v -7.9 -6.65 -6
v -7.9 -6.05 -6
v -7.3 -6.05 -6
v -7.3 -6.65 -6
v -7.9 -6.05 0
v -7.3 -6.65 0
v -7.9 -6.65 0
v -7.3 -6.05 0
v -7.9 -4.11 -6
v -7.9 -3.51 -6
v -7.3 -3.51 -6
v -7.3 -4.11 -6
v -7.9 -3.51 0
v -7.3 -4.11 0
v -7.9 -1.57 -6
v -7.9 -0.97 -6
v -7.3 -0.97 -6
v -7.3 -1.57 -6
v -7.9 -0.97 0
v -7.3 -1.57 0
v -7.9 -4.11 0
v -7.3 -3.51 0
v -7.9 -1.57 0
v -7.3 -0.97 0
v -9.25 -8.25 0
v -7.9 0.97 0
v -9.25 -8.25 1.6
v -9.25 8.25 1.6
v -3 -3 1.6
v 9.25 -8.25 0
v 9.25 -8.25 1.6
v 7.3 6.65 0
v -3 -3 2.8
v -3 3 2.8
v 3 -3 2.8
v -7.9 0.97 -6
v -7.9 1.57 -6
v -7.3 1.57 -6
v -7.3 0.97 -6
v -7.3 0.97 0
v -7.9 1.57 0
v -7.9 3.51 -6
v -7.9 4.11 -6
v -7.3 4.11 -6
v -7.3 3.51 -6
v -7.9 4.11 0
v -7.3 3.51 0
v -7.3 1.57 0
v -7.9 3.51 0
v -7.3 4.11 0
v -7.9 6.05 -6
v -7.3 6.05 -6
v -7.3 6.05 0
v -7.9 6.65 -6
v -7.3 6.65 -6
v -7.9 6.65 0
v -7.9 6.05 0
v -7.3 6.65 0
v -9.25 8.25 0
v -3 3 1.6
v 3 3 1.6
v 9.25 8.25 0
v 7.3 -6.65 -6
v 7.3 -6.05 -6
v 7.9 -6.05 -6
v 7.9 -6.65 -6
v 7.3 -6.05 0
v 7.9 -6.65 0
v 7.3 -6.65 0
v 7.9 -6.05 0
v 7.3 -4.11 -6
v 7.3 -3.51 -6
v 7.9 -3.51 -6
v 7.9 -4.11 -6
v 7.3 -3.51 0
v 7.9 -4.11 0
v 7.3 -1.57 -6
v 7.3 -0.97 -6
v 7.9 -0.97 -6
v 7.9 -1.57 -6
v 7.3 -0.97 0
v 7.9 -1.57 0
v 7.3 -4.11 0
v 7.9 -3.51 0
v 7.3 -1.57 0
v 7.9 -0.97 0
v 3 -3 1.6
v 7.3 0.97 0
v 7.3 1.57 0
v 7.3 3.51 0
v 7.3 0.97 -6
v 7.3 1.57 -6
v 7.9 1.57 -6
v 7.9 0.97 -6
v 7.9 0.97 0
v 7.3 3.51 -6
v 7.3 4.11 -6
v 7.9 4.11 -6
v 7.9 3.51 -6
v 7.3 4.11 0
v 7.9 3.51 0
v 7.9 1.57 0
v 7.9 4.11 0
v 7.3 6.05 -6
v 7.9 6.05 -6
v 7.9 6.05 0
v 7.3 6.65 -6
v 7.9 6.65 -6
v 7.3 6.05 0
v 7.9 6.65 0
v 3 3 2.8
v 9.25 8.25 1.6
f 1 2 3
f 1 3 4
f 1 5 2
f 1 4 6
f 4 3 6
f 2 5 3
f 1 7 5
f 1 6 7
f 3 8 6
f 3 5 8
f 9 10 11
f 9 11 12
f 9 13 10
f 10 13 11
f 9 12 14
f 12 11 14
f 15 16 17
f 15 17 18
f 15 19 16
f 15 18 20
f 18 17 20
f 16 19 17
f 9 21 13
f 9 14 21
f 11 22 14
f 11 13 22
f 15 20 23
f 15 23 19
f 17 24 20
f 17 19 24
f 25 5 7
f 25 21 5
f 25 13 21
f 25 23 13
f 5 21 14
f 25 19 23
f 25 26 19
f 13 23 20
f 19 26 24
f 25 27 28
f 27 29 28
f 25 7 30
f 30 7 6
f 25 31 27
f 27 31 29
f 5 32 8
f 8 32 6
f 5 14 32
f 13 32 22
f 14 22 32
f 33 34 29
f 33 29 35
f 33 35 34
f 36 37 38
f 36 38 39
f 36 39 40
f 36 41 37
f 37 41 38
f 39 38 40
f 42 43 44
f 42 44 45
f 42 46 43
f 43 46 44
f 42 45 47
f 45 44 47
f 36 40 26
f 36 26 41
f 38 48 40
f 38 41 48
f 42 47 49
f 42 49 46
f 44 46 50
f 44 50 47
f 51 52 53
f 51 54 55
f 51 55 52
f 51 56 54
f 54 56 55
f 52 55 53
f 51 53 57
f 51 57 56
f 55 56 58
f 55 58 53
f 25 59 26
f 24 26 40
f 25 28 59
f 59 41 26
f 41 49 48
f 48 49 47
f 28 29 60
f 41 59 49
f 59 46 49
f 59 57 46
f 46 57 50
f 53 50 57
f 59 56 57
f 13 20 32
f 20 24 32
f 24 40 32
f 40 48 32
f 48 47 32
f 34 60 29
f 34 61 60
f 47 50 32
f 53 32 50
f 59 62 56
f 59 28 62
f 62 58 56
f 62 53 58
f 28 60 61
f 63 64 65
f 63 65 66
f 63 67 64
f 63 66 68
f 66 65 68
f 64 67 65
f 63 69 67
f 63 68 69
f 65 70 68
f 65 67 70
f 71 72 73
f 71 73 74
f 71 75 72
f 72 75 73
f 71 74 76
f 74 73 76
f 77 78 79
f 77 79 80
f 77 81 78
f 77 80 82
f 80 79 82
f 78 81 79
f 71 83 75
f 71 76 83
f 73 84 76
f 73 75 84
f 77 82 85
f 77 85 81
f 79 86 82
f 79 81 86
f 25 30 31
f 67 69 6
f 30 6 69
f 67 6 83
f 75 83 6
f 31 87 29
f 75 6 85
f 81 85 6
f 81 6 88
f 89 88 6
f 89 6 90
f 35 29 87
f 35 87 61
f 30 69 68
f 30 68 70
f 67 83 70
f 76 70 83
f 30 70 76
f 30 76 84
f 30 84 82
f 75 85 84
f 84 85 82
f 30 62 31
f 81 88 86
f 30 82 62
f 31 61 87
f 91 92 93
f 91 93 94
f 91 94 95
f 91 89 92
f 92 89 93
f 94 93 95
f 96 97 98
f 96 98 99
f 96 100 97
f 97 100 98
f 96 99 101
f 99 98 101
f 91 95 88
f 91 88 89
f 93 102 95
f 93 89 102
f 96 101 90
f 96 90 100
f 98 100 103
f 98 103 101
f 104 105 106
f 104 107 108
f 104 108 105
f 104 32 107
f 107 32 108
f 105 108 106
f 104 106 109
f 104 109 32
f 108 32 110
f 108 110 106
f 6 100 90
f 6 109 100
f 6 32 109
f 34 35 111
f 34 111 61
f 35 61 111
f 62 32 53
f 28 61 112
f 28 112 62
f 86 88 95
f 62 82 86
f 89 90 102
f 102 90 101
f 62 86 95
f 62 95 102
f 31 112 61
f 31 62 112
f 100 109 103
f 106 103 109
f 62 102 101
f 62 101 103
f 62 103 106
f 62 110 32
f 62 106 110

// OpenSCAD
// file: ../lib/lib.scad
// Shared helpers. Include AFTER params.scad (needs TOL, M3_* etc.).
$fa = 4; $fs = 0.5;

module rrect(size, r) {            // 2D rounded rectangle, centred
    r2 = min(r, min(size[0], size[1]) / 2 - 0.001);
    offset(r = r2) square([size[0] - 2 * r2, size[1] - 2 * r2], center = true);
}
module rbox(size, r, center_xy = true) {   // box with rounded vertical edges
    translate(center_xy ? [0, 0, 0] : [size[0] / 2, size[1] / 2, 0])
        linear_extrude(size[2]) rrect([size[0], size[1]], r);
}
module rbox_at(x0, x1, y0, y1, z0, z1, r = 0.01) {
    translate([(x0 + x1) / 2, (y0 + y1) / 2, z0]) rbox([x1 - x0, y1 - y0, z1 - z0], r);
}
module box_at(x0, x1, y0, y1, z0, z1) { translate([x0, y0, z0]) cube([x1 - x0, y1 - y0, z1 - z0]); }

module ring(ro, ri, h) { difference() { cylinder(r = ro, h = h); translate([0, 0, -1]) cylinder(r = ri, h = h + 2); } }
module ring_sector(ro, ri, h, a0, a1) {
    intersection() {
        ring(ro, ri, h);
        linear_extrude(h) polygon(concat([[0, 0]], [for (a = [a0 : (a1 - a0) / 24 : a1]) 2 * ro * [cos(a), sin(a)]]));
    }
}
// teardrop hole along an axis lying horizontal (axis = Y after rotation), printable w/o support
module teardrop2d(d) { union() { circle(d = d); rotate(45) square(d / 2); } }
// vertical heat-set insert hole, opening at z=0 going +z (depth l)
module insert_hole(l = M3_INSERT_L) { translate([0, 0, -EPS]) cylinder(d = M3_INSERT_D, h = l + EPS); }
module m3_clear(l) { translate([0, 0, -EPS]) cylinder(d = M3_CLEAR, h = l + 2 * EPS); }
module m3_csk(l) {  // countersunk clearance from z=0 upward, head at z=0 side
    translate([0, 0, -EPS]) { cylinder(d = M3_CLEAR, h = l + 2 * EPS); cylinder(d1 = 6.4, d2 = M3_CLEAR, h = 1.7); }
}
module card2d() { rrect([CARD_L, CARD_W], CARD_R); }
module card_at(cy, z) { translate([0, cy, z]) linear_extrude(CARD_T) card2d(); }

// ---- gears ----
function _inv(a) = tan(a) - a * PI_ / 180;           // involute function, a in deg
function _invpt(rb, r, ang0, s) = let(al = acos(rb / r), th = ang0 - s * (_inv(al) * 180 / PI_)) [r * cos(th), r * sin(th)];
module involute_gear2d(m, z, pa = 20, clearance = 0.05) {
    rp = m * z / 2; rb = rp * cos(pa); ra = rp + m - clearance; rf = rp - 1.25 * m;
    half = 90 / z + _inv(pa) * 180 / PI_;            // tooth half-angle at base (deg)
    n = 8;
    rs = [for (i = [0 : n]) max(rb, rf) + (ra - max(rb, rf)) * i / n];
    union() {
        circle(r = rf, $fn = z * 4);
        for (k = [0 : z - 1]) rotate(k * 360 / z) polygon(concat(
            [[rf * cos(-half), rf * sin(-half)]],
            [for (r = rs) let(p = _invpt(rb, r, half, 1)) [p[0], -p[1]]],
            [for (i = [n : -1 : 0]) _invpt(rb, rs[i], half, 1)],
            [[rf * cos(half), rf * sin(half)]]));
    }
}
// straight gear rack (2D in XY: teeth along +x, pointing -y, pitch line at y=0)
module gear_rack2d(m, len, back = 3) {
    p = PI_ * m; ad = m; de = 1.25 * m; t = tan(20);
    n = ceil(len / p) + 1;
    intersection() {
        union() {
            translate([0, de]) square([len, back]);
            for (i = [0 : n]) translate([i * p - p / 4, 0]) polygon([
                [-(p / 4 + de * t), de + 0.01], [p / 4 + de * t + 0.01, de + 0.01],
                [p / 4 - ad * t, -ad], [-(p / 4 - ad * t), -ad] ]);
        }
        translate([0, -ad - 1]) square([len, ad + de + back + 2]);
    }
}
// GT2 belt-tooth profile ring (teeth outward), 2D
module gt2_ring2d(n, r_land, ri) {
    union() {
        difference() { circle(r = r_land + 0.01, $fn = n * 2); circle(r = ri, $fn = n * 2); }
        for (k = [0 : n - 1]) rotate(k * 360 / n)
            translate([r_land, 0]) hull() { translate([-0.2, 0]) square([0.2, 1.0], center = true); translate([0.25, 0]) circle(r = 0.5, $fn = 12); }
    }
}
// main file
// Vendor model: DRV8833 dual H-bridge module. Local: PCB bottom z=0, centred.
include <../params.scad>
include <../lib/lib.scad>
module vendor_drv8833() {
    color([0.7,0.1,0.1]) translate([-9.25, -8.25, 0]) cube([18.5, 16.5, 1.6]);
    color([0.1,0.1,0.1]) translate([-3, -3, 1.6]) cube([6, 6, 1.2]);
    color([0.85,0.7,0.2]) for (x = [-1, 1], i = [0 : 5]) translate([x * 7.6 - 0.3, -6.35 + i * 2.54 - 0.3, -6]) cube([0.6, 0.6, 6]);
}

vendor_drv8833();
